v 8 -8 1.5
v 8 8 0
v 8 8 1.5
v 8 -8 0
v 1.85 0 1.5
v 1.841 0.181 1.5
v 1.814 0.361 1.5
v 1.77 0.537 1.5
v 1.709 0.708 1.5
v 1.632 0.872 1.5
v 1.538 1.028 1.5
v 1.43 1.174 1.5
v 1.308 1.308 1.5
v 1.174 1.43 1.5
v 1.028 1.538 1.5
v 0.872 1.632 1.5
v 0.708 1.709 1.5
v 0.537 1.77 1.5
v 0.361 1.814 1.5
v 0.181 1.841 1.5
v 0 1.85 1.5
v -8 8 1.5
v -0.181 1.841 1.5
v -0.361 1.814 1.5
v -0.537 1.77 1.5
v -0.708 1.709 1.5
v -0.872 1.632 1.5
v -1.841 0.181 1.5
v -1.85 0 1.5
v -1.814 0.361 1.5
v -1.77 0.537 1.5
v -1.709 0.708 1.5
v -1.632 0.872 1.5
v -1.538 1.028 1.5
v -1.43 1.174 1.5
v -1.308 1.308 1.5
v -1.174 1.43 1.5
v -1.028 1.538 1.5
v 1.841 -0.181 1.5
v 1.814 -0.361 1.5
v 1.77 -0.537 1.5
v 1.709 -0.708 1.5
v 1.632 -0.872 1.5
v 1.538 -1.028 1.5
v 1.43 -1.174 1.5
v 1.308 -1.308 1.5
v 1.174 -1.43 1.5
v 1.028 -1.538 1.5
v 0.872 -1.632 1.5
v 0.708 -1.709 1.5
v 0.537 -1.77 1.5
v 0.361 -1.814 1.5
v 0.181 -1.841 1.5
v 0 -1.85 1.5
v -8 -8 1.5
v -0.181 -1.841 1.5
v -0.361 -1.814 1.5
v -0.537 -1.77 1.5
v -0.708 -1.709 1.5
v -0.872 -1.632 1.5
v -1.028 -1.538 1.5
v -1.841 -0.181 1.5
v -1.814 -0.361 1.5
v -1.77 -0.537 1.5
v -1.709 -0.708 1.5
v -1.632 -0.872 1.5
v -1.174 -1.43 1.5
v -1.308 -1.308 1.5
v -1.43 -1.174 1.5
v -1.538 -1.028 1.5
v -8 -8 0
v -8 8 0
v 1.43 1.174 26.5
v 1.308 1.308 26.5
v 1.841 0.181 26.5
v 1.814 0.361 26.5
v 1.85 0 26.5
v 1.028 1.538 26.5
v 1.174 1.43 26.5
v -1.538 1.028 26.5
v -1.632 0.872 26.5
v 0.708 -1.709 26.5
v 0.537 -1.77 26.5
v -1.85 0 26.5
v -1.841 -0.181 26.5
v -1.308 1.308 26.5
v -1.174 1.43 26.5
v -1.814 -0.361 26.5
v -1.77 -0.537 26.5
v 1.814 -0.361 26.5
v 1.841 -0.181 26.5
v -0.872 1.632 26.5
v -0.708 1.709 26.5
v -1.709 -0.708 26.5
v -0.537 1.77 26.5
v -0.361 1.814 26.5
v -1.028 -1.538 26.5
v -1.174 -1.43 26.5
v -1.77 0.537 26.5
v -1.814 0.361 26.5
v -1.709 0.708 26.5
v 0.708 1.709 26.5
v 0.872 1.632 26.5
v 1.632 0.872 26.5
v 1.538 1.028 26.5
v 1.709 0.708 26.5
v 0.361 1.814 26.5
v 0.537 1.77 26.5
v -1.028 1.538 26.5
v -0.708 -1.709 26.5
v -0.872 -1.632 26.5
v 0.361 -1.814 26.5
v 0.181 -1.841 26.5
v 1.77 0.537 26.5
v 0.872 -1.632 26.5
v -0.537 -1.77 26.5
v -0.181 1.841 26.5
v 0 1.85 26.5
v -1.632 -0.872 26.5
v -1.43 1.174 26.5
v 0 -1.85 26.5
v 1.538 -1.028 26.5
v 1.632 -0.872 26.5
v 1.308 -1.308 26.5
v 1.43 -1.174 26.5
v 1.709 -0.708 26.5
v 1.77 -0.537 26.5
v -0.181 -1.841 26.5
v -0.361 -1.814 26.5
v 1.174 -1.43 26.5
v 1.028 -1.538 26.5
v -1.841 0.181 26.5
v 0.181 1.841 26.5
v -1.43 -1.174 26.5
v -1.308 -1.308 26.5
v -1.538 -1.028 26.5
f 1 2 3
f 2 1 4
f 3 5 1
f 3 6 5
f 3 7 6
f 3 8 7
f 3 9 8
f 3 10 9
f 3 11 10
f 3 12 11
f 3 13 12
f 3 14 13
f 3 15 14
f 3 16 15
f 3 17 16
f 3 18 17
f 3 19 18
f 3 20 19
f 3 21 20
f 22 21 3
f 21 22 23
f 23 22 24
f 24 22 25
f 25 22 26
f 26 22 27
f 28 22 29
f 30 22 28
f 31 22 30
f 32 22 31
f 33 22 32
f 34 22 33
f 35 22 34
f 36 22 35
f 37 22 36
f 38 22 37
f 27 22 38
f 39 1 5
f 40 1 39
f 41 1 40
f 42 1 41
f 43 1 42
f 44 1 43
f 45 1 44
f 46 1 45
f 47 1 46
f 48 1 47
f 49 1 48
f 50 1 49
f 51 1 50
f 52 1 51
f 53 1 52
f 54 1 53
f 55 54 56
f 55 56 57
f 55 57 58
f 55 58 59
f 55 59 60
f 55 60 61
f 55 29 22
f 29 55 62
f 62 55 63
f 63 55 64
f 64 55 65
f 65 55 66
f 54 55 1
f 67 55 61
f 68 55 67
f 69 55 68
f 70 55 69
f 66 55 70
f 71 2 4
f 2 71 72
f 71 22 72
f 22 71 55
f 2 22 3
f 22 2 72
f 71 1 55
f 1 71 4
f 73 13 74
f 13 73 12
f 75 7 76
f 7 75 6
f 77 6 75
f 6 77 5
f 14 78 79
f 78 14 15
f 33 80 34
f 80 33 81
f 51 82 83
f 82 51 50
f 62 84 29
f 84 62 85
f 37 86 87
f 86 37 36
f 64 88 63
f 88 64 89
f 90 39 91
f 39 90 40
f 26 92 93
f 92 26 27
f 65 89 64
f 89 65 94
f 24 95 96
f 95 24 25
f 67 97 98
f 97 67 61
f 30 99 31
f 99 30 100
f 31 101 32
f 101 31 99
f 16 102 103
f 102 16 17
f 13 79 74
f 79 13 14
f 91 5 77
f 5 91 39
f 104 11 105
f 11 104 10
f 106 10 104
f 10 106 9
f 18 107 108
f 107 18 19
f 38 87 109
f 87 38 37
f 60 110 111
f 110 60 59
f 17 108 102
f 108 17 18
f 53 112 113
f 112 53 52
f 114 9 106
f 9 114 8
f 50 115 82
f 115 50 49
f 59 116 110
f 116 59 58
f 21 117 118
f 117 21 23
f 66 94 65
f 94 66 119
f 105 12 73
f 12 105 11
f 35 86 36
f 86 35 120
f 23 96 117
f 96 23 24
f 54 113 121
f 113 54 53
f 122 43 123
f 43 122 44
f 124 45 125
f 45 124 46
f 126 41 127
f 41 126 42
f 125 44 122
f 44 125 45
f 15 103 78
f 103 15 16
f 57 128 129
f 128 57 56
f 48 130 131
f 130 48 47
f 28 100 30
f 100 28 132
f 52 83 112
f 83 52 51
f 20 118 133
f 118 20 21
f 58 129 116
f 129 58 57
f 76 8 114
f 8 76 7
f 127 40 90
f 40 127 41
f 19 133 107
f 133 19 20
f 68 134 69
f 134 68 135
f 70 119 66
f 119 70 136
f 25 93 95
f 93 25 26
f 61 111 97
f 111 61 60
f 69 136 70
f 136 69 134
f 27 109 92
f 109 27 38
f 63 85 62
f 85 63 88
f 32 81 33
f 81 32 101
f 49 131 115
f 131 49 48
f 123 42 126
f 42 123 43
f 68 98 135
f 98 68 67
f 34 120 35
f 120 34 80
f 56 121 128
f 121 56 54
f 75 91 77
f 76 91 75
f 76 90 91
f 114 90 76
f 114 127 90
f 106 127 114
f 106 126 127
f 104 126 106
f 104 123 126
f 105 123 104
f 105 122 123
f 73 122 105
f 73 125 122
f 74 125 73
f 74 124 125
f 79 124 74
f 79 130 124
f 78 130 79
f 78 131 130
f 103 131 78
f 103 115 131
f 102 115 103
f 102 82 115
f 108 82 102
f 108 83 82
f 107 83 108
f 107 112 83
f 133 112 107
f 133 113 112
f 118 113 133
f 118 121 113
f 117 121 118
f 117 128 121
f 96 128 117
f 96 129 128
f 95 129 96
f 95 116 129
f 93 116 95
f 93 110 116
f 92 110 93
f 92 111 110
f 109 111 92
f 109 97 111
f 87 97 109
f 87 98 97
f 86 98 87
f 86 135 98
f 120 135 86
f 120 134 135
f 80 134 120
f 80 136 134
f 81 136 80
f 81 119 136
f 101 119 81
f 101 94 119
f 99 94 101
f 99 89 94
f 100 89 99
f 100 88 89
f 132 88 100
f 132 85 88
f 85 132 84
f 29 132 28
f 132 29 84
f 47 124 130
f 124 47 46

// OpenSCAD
// file: ../../libraries/toothbrush-pegs/toothbrush-pegs.scad
// toothbrush-pegs — peg shapes that mate with the recess on the base
// of common electric-toothbrush handles. Pull yours apart, measure the
// recess Ø at each end + the back-arc-to-front-arc length, set a
// tolerance, and adjust if the fit is too loose or too tight.
//
// Conventions:
//   * Peg origin = centre of the long axis, on the BASE face (z = 0).
//   * Long axis along world Y; the WIDER "back" end is at +Y and the
//     NARROWER "front" end at −Y. Brushes are not symmetric, so the
//     peg isn't either — the asymmetric cross-section rotationally
//     keys the brush to a fixed orientation.
//   * Peg grows in +Z; `height` is the peg's vertical extent.
//
// Add modules here per brush family (Sonicare, Quip, etc.) as you
// measure them. Keep the parameter names symmetric across families
// so callers can swap the module name and pass the same arguments.
//
// Author: John Mylchreest <jmylchreest@gmail.com>. MIT licensed.

// Oral-B (Type 3766-class) handle base peg dimensions. The recess is a
// rounded rectangle that's wider at the charging-side end than at the
// bristle-side end, with small radius corners — NOT the smooth teardrop
// a `hull(2 circles)` would give. Geometry is FIXED — only `tolerance`
// is exposed below — because the brush's recess never changes between
// handles. Edit these constants if your handle disagrees; the test
// piece picks up the new sizes automatically.
ORALB_PEG_W_BACK    = 9.0;   // width at the back (charging-side) end
ORALB_PEG_W_FRONT   = 8.4;   // width at the front (bristle-side) end
ORALB_PEG_LENGTH    = 9.7;   // back end → front end along the long axis
ORALB_PEG_CORNER_R  = 3.0;   // rounding radius applied at every corner
ORALB_PEG_HEIGHT    = 7.0;   // vertical peg height (≤ ~12.5 mm recess depth)
ORALB_PEG_DEPTH_MAX = 12.5;  // brush's recess depth — keep ORALB_PEG_HEIGHT under this

// Oral-B replacement-head peg dimensions. The head's hollow shaft slides
// down over a thin vertical post; the post fills the shaft to keep the
// head upright.
ORALB_HEAD_PEG_D = 4.0;      // post diameter (head shaft ≈ 5 mm Ø)
ORALB_HEAD_PEG_H = 25;       // post height — long enough to fill the shaft

// Trapezoid-with-rounded-corners — hull of four corner circles, one at
// each corner of an isoceles trapezoid (w_back wide at +Y, w_front wide
// at −Y, total length along Y). Corner radii are equal at all four
// corners; the side walls come out as the straight tangent lines
// between the back and front circles on each side (≈ 5–6° in from
// vertical for the default Oral-B numbers). Centered at the origin.
module asym_rounded_rect_2d(w_back, w_front, length, r) {
    rr = max(0.1, min(r, min(w_back, w_front, length) / 2 - 0.001));
    hull() {
        translate([-w_back  / 2 + rr,  length / 2 - rr]) circle(r = rr);
        translate([+w_back  / 2 - rr,  length / 2 - rr]) circle(r = rr);
        translate([-w_front / 2 + rr, -length / 2 + rr]) circle(r = rr);
        translate([+w_front / 2 - rr, -length / 2 + rr]) circle(r = rr);
    }
}

// Oral-B brush body peg. The base cross-section comes from the
// constants above and the tolerance; on top of that:
//   * `taper` is the TOTAL XY shrinkage from the peg's base to the top
//     of its main (tapered) body — subtracted from each linear
//     dimension, half from the corner radius. 2 mm by default so the
//     top sits comfortably narrower than the recess opening.
//   * `chamfer` adds an extra bevel at the very top in `chamfer_h` of
//     vertical height, removing `chamfer` per side from the linear
//     dimensions. A 0.5 × 0.5 mm default gives a 45° lead-in for
//     easier insertion. Set `chamfer = 0` or `chamfer_h = 0` to skip.
// Long axis comes out along world Y with the wider "back" end at +Y.
module oralb_body_peg(
    tolerance = 0.3,
    taper     = 2.0,
    chamfer   = 0.5,
    chamfer_h = 0.5
) {
    wb = max(0.1, ORALB_PEG_W_BACK   - tolerance);
    wf = max(0.1, ORALB_PEG_W_FRONT  - tolerance);
    l  = max(0.1, ORALB_PEG_LENGTH   - tolerance);
    rr = max(0.1, ORALB_PEG_CORNER_R - tolerance / 2);
    h  = ORALB_PEG_HEIGHT;

    use_chamfer = chamfer > 0 && chamfer_h > 0;
    main_h = use_chamfer ? h - chamfer_h : h;

    // Top of the tapered main body (also bottom of the chamfer when
    // the chamfer is in use).
    wb_t = max(0.1, wb - taper);
    wf_t = max(0.1, wf - taper);
    l_t  = max(0.1, l  - taper);
    rr_t = max(0.1, rr - taper / 2);

    union() {
        // Tapered main body — hull from the full base up to the taper-top.
        hull() {
            linear_extrude(height = 0.01)
                asym_rounded_rect_2d(wb, wf, l, rr);
            translate([0, 0, main_h - 0.01])
                linear_extrude(height = 0.01)
                    asym_rounded_rect_2d(wb_t, wf_t, l_t, rr_t);
        }
        // Optional top chamfer — hull from taper-top up to a smaller
        // cross-section, giving a quick bevel at the very top edge.
        if (use_chamfer)
            translate([0, 0, main_h])
                hull() {
                    linear_extrude(height = 0.01)
                        asym_rounded_rect_2d(wb_t, wf_t, l_t, rr_t);
                    translate([0, 0, chamfer_h - 0.01])
                        linear_extrude(height = 0.01)
                            asym_rounded_rect_2d(
                                max(0.1, wb_t - 2 * chamfer),
                                max(0.1, wf_t - 2 * chamfer),
                                max(0.1, l_t  - 2 * chamfer),
                                max(0.1, rr_t - chamfer)
                            );
                }
    }
}

// Oral-B replacement-head peg. A thin vertical post that fills the
// head's hollow shaft from below. Tolerance shrinks the diameter
// (split evenly per side). Centred on the origin, growing in +Z.
module oralb_head_peg(tolerance = 0.3) {
    d = max(0.1, ORALB_HEAD_PEG_D - tolerance);
    cylinder(d = d, h = ORALB_HEAD_PEG_H);
}
// main file
// oralb-head-peg-test — minimum-material fit-check piece for the
// Oral-B replacement-head peg. Prints a single thin post standing on
// a small plate; slide a real head down over it to confirm the fit
// before committing the tolerance to oralb-caddy.scad's
// head_peg_tolerance (or to a Skadis dock, drawer insert, etc.).
//
// Print flat (plate on the bed, post sticking up). No support needed.
//
// Author: John Mylchreest <jmylchreest@gmail.com>. MIT licensed.

// include<> (not use<>) so the ORALB_HEAD_PEG_* constants are visible
// here for the plate-sizing calculation. The library has no top-level
// geometry so include is safe — nothing gets emitted by accident.
include <../../libraries/toothbrush-pegs/toothbrush-pegs.scad>

/* [Peg] */
// The peg's shape and size are fixed by the library — tolerance is the
// only per-print knob. Re-print at a different value if the head's too
// loose or too tight.
peg_tolerance = 0.3;

/* [Plate] */
plate_t       = 1.5;
plate_padding = 6;     // extra material around the peg on each side

/* [Quality] */
$fa = $preview ? $fa : 1;
$fs = $preview ? $fs : 0.2;
$fn = 64;

// ---- derived plate size ----
plate_side = ORALB_HEAD_PEG_D + 2 * plate_padding;

module test_piece() {
    union() {
        translate([0, 0, plate_t / 2])
            cube([plate_side, plate_side, plate_t], center = true);
        translate([0, 0, plate_t])
            oralb_head_peg(tolerance = peg_tolerance);
    }
}

test_piece();
